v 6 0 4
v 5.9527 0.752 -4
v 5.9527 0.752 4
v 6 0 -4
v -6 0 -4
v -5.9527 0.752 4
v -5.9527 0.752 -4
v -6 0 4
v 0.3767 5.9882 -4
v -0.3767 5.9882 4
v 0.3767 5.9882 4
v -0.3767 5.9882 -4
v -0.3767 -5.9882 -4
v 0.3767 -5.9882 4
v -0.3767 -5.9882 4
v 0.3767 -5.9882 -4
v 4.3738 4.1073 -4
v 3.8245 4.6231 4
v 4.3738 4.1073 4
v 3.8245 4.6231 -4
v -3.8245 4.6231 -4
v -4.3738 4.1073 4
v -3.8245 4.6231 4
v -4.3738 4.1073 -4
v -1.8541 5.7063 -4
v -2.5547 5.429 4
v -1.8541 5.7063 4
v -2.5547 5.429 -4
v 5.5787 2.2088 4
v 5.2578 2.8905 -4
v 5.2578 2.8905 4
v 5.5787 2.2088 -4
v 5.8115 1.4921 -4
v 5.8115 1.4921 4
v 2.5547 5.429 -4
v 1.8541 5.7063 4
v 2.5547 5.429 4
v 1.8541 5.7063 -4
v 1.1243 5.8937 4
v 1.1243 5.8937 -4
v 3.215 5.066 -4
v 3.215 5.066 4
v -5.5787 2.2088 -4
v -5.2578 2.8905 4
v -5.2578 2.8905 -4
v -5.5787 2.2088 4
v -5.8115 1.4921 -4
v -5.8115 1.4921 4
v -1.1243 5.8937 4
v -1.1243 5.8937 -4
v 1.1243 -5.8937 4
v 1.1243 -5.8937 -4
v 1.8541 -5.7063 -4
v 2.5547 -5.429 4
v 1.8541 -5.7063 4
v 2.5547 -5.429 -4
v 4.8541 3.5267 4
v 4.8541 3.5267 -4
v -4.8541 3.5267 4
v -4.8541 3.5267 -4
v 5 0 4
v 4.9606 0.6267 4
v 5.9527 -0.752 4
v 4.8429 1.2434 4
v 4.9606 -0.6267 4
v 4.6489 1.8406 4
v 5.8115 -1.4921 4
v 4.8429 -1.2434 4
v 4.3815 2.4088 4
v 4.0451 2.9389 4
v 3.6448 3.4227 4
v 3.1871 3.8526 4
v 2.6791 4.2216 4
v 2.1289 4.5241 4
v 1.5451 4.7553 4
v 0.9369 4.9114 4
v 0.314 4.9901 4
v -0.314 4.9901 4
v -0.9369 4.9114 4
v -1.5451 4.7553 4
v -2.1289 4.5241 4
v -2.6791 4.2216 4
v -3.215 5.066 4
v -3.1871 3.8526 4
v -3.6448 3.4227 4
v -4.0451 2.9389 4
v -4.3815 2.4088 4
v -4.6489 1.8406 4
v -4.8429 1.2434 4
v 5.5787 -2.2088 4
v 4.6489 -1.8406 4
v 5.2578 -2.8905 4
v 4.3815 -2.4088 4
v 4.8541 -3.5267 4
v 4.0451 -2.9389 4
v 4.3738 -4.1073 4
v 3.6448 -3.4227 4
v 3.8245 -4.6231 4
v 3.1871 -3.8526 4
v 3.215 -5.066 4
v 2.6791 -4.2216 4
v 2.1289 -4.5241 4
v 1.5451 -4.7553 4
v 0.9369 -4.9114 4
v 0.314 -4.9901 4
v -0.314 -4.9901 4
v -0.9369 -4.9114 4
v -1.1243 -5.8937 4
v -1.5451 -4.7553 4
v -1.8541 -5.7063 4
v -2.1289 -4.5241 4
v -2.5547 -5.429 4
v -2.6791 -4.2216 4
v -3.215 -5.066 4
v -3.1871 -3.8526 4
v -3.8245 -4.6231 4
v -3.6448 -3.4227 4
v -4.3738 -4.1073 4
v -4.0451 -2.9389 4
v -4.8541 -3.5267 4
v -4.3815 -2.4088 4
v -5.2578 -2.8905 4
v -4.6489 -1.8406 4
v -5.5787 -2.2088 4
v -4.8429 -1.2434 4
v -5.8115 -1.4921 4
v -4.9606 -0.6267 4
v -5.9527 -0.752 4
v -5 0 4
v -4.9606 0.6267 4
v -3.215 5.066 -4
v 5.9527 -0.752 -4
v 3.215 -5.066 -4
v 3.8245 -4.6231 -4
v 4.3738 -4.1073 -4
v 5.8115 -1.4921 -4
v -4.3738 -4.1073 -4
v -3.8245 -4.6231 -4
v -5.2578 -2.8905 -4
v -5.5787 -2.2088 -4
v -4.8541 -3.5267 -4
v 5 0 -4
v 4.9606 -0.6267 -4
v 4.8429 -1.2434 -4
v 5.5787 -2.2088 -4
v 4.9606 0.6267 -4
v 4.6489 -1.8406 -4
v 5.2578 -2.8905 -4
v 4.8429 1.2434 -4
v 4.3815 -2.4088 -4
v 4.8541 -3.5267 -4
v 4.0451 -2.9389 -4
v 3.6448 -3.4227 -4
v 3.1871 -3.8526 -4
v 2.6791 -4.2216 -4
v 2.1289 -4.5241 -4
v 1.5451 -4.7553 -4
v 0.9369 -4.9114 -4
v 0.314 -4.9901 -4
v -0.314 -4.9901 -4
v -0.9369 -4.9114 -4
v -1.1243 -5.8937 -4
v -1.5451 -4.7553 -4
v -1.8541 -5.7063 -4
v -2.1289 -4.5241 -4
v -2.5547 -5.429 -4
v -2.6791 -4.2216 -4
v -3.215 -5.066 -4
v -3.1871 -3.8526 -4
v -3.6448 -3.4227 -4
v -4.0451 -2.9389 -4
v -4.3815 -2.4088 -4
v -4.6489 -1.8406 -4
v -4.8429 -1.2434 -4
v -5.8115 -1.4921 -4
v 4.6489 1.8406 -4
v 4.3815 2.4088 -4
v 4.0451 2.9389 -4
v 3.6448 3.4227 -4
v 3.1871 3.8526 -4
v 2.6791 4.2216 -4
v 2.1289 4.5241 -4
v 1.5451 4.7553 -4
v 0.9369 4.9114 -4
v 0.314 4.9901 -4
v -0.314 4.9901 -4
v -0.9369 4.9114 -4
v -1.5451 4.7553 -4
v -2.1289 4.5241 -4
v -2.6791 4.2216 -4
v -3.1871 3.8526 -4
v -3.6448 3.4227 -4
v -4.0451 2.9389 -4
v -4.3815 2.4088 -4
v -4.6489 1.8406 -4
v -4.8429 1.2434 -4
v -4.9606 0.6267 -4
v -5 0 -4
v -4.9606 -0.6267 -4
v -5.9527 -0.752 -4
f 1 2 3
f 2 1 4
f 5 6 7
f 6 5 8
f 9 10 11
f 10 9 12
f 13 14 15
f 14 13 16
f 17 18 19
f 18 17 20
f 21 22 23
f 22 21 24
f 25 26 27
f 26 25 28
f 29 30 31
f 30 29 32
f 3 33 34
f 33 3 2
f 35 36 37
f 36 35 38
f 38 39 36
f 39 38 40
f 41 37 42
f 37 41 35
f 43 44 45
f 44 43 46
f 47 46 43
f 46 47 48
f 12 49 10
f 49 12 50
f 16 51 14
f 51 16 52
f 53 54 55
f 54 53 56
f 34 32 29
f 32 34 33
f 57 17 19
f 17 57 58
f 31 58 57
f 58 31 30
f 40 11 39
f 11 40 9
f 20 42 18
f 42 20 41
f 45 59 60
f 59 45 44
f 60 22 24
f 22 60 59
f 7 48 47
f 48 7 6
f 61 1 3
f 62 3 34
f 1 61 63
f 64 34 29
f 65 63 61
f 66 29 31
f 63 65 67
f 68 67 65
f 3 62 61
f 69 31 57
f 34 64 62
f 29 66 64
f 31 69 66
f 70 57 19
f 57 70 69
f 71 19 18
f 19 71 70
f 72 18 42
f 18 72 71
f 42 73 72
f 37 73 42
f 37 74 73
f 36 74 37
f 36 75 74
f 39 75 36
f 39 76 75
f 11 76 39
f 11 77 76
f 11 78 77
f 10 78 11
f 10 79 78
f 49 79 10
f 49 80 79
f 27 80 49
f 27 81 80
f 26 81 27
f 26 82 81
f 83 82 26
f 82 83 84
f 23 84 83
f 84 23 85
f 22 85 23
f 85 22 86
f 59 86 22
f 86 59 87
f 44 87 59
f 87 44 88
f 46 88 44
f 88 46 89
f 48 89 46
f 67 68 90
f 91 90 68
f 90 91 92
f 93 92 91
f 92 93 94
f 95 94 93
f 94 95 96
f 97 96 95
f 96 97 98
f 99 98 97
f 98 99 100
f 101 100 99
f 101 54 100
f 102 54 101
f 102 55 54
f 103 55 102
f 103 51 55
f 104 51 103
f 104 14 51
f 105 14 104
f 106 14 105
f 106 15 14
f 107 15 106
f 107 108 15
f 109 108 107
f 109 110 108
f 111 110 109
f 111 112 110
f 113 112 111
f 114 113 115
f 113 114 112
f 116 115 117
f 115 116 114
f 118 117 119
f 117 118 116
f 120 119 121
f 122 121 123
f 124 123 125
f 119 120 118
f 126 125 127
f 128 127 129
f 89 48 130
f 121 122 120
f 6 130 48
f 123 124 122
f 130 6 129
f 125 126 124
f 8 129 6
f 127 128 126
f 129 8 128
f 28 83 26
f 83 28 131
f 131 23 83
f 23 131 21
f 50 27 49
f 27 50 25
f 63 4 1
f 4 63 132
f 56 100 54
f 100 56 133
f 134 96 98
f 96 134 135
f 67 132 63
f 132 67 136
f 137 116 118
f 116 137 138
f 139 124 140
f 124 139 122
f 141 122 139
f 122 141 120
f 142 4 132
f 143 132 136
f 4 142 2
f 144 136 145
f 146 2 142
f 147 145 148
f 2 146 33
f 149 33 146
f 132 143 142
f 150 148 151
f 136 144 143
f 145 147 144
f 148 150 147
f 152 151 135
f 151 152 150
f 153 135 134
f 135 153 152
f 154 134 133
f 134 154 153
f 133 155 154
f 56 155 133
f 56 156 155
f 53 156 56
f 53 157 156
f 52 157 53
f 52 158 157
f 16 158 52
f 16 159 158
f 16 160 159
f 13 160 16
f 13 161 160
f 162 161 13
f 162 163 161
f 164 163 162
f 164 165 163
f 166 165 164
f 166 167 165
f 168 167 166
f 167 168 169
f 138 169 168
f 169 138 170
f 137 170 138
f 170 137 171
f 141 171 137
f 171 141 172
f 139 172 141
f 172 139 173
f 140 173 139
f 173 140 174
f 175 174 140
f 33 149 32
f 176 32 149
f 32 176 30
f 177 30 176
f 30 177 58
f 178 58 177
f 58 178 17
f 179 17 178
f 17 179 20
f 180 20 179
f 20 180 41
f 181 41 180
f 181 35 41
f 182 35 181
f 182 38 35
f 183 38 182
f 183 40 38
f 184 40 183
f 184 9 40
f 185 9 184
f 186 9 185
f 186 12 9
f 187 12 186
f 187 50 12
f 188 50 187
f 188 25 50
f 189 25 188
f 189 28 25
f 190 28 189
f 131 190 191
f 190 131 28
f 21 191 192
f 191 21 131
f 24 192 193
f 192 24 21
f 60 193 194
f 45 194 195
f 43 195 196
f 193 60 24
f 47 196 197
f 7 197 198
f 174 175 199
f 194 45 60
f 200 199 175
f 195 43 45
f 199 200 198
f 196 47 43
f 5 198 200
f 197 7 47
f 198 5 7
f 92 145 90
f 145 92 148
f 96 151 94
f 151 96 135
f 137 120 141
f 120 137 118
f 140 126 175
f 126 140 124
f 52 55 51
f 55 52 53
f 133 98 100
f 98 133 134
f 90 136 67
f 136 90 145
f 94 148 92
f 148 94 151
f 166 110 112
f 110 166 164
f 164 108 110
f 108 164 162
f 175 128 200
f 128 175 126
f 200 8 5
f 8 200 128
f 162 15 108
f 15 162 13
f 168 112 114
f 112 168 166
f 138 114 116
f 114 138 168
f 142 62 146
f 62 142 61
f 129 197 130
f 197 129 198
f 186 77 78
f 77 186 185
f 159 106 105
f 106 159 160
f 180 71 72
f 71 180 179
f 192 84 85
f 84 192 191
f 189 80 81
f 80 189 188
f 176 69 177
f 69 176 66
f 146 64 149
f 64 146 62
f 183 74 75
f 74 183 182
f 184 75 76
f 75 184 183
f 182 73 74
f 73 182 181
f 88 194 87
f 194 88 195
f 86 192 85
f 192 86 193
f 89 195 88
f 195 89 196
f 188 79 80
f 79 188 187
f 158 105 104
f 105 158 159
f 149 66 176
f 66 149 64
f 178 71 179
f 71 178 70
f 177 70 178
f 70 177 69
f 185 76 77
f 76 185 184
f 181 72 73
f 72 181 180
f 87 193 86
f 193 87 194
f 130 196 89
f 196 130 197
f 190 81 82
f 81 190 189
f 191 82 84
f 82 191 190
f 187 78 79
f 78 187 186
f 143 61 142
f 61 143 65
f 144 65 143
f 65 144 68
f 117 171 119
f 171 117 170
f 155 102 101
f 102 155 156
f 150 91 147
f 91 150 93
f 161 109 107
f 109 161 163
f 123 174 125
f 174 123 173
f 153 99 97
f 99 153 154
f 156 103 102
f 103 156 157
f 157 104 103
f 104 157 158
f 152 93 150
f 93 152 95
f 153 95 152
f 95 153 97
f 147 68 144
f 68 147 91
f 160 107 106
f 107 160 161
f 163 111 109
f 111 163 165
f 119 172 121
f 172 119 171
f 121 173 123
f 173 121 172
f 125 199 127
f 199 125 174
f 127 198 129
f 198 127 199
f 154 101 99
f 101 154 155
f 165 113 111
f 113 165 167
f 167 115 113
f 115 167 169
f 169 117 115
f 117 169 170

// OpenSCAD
$fn = 50;


difference() {
	union() {
		translate(v = [0, 0, -4.0000000000]) {
			cylinder(h = 8, r = 6.0000000000);
		}
	}
	union() {
		translate(v = [0, 0, -100.0000000000]) {
			cylinder(h = 200, r = 5);
		}
	}
}
